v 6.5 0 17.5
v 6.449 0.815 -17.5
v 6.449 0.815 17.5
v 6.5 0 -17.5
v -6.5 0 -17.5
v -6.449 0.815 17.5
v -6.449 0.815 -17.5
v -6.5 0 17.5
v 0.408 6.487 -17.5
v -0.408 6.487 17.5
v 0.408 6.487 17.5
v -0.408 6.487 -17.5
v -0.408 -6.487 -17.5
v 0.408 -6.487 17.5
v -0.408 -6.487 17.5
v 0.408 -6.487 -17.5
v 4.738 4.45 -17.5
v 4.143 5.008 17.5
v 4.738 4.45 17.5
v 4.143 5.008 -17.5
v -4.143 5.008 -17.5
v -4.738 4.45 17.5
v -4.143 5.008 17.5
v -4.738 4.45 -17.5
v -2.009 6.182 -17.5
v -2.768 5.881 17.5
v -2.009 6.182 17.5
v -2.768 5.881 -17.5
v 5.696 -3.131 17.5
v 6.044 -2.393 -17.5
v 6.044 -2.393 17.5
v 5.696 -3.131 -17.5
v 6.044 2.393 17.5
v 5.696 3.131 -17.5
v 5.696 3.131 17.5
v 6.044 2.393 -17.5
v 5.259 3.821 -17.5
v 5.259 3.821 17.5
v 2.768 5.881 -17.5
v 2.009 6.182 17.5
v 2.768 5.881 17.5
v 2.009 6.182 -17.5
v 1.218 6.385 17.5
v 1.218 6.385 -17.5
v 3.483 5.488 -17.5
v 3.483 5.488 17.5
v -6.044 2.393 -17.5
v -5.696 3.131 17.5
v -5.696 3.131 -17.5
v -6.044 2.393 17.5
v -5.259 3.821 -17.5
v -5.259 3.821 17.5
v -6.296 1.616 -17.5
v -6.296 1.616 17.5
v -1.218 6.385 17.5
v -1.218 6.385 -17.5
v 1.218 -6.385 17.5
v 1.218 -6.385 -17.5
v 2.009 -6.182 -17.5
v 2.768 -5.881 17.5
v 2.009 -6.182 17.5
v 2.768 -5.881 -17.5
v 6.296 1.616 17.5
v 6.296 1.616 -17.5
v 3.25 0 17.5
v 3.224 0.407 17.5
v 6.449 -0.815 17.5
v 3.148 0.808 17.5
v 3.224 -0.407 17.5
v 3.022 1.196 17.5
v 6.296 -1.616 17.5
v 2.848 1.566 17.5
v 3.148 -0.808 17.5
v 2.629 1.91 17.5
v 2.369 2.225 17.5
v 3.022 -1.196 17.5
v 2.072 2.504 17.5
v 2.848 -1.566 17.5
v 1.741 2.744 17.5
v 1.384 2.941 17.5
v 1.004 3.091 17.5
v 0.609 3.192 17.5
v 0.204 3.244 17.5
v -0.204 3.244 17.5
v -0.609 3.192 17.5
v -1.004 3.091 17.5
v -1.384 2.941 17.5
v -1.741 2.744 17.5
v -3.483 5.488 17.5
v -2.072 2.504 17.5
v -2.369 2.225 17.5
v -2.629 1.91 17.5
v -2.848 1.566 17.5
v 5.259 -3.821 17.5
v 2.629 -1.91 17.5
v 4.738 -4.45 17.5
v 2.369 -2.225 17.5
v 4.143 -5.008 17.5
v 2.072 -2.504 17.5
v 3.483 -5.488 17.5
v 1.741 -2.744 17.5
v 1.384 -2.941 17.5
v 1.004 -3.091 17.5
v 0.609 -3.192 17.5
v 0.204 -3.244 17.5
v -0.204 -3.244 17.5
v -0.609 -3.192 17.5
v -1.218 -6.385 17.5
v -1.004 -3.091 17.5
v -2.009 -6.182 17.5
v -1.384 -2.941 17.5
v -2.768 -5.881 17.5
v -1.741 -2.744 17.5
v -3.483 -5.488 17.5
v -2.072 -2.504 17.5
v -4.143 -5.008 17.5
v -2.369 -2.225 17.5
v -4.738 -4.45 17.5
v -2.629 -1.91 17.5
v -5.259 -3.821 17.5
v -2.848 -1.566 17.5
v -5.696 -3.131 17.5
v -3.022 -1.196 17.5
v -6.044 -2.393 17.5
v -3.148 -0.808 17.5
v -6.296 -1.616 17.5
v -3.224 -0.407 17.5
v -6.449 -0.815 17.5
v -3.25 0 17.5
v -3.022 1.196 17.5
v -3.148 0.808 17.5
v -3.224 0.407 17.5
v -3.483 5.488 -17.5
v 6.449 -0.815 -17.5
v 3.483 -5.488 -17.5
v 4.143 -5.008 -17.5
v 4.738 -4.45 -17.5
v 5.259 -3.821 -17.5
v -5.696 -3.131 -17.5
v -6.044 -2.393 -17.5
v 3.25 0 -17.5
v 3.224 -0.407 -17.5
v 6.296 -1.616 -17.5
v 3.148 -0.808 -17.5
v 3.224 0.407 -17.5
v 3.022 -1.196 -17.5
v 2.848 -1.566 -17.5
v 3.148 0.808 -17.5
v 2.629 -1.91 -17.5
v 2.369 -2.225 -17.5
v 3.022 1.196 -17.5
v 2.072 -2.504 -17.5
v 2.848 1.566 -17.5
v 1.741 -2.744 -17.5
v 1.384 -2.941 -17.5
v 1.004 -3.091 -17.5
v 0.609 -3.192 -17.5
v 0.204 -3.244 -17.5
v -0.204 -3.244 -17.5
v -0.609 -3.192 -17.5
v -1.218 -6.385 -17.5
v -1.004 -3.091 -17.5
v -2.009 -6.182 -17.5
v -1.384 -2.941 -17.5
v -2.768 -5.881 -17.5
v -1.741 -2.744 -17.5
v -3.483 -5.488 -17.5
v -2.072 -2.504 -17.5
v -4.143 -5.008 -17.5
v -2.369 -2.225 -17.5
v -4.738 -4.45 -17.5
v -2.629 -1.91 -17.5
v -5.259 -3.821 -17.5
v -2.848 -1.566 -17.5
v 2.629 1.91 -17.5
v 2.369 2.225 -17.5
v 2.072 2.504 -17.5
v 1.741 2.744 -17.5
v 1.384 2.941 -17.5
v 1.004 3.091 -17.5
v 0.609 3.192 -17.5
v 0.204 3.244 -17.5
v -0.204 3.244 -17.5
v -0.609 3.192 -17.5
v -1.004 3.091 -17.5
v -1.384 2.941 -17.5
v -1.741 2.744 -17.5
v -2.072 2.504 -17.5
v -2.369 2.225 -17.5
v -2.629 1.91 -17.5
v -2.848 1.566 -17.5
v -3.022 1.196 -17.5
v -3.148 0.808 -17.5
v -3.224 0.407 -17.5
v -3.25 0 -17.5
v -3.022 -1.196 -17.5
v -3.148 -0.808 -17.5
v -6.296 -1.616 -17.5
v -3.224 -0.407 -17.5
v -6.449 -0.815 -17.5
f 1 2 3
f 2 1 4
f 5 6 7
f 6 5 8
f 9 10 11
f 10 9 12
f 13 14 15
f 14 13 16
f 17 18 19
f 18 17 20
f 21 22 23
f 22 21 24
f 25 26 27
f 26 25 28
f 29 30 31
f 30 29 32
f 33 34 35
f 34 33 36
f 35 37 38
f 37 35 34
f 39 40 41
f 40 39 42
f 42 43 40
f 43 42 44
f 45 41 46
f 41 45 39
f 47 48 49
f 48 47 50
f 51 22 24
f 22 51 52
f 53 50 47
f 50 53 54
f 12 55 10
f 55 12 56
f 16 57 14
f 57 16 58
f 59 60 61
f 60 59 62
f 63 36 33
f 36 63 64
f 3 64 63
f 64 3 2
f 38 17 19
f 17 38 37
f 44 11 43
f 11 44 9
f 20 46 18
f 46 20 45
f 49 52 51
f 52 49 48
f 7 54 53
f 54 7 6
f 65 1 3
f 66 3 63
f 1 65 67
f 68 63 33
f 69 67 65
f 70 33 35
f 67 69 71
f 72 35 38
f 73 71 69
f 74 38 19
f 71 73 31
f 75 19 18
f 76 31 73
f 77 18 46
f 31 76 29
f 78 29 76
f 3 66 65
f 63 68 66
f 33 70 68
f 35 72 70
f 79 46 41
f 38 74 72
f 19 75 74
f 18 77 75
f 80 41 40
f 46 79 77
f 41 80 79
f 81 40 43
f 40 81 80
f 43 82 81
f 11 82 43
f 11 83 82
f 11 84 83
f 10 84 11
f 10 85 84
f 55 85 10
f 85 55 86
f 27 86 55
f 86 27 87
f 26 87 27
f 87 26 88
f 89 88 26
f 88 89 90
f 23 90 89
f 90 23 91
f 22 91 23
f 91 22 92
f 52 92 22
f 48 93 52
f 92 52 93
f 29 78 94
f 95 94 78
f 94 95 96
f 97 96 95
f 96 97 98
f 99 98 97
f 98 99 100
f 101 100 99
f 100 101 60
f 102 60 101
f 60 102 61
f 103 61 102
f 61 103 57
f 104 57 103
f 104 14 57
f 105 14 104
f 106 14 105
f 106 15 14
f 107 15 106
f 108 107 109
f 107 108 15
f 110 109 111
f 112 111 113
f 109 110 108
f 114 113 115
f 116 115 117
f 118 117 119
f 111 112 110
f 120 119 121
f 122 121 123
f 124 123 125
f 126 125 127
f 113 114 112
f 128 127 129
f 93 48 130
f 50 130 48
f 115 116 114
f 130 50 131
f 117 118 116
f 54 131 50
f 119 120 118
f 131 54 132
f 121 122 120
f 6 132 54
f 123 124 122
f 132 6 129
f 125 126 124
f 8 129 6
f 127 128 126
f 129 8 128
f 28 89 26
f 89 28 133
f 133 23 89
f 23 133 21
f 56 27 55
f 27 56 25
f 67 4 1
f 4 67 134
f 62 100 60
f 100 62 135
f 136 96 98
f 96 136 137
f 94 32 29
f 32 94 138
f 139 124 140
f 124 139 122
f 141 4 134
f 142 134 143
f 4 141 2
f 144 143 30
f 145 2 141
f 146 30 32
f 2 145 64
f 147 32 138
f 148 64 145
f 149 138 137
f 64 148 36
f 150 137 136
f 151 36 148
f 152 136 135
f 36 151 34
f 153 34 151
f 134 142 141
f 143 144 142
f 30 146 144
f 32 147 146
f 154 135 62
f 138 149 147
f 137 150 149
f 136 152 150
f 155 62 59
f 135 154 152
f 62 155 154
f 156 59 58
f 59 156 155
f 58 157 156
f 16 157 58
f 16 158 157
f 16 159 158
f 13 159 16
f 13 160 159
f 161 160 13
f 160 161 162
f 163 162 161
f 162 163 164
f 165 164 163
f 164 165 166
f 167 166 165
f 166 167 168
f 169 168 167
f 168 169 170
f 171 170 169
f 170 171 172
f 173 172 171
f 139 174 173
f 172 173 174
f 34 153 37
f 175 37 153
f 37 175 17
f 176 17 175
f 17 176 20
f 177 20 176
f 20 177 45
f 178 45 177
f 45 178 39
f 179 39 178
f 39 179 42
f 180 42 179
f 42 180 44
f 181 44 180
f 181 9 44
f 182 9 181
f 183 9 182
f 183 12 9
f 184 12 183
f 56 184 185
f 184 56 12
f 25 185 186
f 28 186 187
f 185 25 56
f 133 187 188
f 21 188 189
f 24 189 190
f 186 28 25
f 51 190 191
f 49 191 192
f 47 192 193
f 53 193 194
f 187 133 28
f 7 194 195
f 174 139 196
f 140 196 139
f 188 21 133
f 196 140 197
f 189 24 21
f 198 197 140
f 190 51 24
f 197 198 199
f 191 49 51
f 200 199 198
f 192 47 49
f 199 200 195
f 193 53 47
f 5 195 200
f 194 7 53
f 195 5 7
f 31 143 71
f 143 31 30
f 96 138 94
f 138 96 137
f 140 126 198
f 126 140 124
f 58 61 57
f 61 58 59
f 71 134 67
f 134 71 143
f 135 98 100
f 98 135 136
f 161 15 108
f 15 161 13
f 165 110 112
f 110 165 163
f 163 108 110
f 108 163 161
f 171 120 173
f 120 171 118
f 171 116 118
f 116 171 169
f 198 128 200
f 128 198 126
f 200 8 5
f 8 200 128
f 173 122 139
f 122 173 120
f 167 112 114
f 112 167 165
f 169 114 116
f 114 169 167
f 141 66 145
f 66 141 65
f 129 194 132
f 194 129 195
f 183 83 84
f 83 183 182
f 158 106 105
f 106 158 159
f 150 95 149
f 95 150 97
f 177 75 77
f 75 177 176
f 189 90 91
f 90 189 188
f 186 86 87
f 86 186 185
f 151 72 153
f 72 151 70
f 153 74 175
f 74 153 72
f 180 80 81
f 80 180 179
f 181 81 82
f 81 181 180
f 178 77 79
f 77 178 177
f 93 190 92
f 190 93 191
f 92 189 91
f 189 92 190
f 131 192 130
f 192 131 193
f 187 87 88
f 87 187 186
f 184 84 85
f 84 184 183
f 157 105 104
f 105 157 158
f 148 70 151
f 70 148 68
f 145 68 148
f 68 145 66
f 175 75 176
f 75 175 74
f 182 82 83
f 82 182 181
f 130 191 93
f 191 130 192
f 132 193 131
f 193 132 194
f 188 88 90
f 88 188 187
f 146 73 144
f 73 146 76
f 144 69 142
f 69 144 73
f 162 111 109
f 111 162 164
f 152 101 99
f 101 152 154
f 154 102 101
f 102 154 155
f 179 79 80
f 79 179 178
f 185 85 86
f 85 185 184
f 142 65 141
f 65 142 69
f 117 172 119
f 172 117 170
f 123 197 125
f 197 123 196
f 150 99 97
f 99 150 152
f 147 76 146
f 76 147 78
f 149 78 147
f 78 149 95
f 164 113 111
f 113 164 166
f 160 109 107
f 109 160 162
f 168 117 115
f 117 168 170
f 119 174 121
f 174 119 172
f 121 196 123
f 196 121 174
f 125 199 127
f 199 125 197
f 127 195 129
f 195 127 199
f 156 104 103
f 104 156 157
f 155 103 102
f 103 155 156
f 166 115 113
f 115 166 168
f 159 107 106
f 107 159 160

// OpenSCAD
$fn = 50;


difference() {
	union() {
		translate(v = [0, 0, -17.5000000000]) {
			cylinder(h = 35, r = 6.5000000000);
		}
	}
	union() {
		translate(v = [0, 0, -100.0000000000]) {
			cylinder(h = 200, r = 3.2500000000);
		}
	}
}
